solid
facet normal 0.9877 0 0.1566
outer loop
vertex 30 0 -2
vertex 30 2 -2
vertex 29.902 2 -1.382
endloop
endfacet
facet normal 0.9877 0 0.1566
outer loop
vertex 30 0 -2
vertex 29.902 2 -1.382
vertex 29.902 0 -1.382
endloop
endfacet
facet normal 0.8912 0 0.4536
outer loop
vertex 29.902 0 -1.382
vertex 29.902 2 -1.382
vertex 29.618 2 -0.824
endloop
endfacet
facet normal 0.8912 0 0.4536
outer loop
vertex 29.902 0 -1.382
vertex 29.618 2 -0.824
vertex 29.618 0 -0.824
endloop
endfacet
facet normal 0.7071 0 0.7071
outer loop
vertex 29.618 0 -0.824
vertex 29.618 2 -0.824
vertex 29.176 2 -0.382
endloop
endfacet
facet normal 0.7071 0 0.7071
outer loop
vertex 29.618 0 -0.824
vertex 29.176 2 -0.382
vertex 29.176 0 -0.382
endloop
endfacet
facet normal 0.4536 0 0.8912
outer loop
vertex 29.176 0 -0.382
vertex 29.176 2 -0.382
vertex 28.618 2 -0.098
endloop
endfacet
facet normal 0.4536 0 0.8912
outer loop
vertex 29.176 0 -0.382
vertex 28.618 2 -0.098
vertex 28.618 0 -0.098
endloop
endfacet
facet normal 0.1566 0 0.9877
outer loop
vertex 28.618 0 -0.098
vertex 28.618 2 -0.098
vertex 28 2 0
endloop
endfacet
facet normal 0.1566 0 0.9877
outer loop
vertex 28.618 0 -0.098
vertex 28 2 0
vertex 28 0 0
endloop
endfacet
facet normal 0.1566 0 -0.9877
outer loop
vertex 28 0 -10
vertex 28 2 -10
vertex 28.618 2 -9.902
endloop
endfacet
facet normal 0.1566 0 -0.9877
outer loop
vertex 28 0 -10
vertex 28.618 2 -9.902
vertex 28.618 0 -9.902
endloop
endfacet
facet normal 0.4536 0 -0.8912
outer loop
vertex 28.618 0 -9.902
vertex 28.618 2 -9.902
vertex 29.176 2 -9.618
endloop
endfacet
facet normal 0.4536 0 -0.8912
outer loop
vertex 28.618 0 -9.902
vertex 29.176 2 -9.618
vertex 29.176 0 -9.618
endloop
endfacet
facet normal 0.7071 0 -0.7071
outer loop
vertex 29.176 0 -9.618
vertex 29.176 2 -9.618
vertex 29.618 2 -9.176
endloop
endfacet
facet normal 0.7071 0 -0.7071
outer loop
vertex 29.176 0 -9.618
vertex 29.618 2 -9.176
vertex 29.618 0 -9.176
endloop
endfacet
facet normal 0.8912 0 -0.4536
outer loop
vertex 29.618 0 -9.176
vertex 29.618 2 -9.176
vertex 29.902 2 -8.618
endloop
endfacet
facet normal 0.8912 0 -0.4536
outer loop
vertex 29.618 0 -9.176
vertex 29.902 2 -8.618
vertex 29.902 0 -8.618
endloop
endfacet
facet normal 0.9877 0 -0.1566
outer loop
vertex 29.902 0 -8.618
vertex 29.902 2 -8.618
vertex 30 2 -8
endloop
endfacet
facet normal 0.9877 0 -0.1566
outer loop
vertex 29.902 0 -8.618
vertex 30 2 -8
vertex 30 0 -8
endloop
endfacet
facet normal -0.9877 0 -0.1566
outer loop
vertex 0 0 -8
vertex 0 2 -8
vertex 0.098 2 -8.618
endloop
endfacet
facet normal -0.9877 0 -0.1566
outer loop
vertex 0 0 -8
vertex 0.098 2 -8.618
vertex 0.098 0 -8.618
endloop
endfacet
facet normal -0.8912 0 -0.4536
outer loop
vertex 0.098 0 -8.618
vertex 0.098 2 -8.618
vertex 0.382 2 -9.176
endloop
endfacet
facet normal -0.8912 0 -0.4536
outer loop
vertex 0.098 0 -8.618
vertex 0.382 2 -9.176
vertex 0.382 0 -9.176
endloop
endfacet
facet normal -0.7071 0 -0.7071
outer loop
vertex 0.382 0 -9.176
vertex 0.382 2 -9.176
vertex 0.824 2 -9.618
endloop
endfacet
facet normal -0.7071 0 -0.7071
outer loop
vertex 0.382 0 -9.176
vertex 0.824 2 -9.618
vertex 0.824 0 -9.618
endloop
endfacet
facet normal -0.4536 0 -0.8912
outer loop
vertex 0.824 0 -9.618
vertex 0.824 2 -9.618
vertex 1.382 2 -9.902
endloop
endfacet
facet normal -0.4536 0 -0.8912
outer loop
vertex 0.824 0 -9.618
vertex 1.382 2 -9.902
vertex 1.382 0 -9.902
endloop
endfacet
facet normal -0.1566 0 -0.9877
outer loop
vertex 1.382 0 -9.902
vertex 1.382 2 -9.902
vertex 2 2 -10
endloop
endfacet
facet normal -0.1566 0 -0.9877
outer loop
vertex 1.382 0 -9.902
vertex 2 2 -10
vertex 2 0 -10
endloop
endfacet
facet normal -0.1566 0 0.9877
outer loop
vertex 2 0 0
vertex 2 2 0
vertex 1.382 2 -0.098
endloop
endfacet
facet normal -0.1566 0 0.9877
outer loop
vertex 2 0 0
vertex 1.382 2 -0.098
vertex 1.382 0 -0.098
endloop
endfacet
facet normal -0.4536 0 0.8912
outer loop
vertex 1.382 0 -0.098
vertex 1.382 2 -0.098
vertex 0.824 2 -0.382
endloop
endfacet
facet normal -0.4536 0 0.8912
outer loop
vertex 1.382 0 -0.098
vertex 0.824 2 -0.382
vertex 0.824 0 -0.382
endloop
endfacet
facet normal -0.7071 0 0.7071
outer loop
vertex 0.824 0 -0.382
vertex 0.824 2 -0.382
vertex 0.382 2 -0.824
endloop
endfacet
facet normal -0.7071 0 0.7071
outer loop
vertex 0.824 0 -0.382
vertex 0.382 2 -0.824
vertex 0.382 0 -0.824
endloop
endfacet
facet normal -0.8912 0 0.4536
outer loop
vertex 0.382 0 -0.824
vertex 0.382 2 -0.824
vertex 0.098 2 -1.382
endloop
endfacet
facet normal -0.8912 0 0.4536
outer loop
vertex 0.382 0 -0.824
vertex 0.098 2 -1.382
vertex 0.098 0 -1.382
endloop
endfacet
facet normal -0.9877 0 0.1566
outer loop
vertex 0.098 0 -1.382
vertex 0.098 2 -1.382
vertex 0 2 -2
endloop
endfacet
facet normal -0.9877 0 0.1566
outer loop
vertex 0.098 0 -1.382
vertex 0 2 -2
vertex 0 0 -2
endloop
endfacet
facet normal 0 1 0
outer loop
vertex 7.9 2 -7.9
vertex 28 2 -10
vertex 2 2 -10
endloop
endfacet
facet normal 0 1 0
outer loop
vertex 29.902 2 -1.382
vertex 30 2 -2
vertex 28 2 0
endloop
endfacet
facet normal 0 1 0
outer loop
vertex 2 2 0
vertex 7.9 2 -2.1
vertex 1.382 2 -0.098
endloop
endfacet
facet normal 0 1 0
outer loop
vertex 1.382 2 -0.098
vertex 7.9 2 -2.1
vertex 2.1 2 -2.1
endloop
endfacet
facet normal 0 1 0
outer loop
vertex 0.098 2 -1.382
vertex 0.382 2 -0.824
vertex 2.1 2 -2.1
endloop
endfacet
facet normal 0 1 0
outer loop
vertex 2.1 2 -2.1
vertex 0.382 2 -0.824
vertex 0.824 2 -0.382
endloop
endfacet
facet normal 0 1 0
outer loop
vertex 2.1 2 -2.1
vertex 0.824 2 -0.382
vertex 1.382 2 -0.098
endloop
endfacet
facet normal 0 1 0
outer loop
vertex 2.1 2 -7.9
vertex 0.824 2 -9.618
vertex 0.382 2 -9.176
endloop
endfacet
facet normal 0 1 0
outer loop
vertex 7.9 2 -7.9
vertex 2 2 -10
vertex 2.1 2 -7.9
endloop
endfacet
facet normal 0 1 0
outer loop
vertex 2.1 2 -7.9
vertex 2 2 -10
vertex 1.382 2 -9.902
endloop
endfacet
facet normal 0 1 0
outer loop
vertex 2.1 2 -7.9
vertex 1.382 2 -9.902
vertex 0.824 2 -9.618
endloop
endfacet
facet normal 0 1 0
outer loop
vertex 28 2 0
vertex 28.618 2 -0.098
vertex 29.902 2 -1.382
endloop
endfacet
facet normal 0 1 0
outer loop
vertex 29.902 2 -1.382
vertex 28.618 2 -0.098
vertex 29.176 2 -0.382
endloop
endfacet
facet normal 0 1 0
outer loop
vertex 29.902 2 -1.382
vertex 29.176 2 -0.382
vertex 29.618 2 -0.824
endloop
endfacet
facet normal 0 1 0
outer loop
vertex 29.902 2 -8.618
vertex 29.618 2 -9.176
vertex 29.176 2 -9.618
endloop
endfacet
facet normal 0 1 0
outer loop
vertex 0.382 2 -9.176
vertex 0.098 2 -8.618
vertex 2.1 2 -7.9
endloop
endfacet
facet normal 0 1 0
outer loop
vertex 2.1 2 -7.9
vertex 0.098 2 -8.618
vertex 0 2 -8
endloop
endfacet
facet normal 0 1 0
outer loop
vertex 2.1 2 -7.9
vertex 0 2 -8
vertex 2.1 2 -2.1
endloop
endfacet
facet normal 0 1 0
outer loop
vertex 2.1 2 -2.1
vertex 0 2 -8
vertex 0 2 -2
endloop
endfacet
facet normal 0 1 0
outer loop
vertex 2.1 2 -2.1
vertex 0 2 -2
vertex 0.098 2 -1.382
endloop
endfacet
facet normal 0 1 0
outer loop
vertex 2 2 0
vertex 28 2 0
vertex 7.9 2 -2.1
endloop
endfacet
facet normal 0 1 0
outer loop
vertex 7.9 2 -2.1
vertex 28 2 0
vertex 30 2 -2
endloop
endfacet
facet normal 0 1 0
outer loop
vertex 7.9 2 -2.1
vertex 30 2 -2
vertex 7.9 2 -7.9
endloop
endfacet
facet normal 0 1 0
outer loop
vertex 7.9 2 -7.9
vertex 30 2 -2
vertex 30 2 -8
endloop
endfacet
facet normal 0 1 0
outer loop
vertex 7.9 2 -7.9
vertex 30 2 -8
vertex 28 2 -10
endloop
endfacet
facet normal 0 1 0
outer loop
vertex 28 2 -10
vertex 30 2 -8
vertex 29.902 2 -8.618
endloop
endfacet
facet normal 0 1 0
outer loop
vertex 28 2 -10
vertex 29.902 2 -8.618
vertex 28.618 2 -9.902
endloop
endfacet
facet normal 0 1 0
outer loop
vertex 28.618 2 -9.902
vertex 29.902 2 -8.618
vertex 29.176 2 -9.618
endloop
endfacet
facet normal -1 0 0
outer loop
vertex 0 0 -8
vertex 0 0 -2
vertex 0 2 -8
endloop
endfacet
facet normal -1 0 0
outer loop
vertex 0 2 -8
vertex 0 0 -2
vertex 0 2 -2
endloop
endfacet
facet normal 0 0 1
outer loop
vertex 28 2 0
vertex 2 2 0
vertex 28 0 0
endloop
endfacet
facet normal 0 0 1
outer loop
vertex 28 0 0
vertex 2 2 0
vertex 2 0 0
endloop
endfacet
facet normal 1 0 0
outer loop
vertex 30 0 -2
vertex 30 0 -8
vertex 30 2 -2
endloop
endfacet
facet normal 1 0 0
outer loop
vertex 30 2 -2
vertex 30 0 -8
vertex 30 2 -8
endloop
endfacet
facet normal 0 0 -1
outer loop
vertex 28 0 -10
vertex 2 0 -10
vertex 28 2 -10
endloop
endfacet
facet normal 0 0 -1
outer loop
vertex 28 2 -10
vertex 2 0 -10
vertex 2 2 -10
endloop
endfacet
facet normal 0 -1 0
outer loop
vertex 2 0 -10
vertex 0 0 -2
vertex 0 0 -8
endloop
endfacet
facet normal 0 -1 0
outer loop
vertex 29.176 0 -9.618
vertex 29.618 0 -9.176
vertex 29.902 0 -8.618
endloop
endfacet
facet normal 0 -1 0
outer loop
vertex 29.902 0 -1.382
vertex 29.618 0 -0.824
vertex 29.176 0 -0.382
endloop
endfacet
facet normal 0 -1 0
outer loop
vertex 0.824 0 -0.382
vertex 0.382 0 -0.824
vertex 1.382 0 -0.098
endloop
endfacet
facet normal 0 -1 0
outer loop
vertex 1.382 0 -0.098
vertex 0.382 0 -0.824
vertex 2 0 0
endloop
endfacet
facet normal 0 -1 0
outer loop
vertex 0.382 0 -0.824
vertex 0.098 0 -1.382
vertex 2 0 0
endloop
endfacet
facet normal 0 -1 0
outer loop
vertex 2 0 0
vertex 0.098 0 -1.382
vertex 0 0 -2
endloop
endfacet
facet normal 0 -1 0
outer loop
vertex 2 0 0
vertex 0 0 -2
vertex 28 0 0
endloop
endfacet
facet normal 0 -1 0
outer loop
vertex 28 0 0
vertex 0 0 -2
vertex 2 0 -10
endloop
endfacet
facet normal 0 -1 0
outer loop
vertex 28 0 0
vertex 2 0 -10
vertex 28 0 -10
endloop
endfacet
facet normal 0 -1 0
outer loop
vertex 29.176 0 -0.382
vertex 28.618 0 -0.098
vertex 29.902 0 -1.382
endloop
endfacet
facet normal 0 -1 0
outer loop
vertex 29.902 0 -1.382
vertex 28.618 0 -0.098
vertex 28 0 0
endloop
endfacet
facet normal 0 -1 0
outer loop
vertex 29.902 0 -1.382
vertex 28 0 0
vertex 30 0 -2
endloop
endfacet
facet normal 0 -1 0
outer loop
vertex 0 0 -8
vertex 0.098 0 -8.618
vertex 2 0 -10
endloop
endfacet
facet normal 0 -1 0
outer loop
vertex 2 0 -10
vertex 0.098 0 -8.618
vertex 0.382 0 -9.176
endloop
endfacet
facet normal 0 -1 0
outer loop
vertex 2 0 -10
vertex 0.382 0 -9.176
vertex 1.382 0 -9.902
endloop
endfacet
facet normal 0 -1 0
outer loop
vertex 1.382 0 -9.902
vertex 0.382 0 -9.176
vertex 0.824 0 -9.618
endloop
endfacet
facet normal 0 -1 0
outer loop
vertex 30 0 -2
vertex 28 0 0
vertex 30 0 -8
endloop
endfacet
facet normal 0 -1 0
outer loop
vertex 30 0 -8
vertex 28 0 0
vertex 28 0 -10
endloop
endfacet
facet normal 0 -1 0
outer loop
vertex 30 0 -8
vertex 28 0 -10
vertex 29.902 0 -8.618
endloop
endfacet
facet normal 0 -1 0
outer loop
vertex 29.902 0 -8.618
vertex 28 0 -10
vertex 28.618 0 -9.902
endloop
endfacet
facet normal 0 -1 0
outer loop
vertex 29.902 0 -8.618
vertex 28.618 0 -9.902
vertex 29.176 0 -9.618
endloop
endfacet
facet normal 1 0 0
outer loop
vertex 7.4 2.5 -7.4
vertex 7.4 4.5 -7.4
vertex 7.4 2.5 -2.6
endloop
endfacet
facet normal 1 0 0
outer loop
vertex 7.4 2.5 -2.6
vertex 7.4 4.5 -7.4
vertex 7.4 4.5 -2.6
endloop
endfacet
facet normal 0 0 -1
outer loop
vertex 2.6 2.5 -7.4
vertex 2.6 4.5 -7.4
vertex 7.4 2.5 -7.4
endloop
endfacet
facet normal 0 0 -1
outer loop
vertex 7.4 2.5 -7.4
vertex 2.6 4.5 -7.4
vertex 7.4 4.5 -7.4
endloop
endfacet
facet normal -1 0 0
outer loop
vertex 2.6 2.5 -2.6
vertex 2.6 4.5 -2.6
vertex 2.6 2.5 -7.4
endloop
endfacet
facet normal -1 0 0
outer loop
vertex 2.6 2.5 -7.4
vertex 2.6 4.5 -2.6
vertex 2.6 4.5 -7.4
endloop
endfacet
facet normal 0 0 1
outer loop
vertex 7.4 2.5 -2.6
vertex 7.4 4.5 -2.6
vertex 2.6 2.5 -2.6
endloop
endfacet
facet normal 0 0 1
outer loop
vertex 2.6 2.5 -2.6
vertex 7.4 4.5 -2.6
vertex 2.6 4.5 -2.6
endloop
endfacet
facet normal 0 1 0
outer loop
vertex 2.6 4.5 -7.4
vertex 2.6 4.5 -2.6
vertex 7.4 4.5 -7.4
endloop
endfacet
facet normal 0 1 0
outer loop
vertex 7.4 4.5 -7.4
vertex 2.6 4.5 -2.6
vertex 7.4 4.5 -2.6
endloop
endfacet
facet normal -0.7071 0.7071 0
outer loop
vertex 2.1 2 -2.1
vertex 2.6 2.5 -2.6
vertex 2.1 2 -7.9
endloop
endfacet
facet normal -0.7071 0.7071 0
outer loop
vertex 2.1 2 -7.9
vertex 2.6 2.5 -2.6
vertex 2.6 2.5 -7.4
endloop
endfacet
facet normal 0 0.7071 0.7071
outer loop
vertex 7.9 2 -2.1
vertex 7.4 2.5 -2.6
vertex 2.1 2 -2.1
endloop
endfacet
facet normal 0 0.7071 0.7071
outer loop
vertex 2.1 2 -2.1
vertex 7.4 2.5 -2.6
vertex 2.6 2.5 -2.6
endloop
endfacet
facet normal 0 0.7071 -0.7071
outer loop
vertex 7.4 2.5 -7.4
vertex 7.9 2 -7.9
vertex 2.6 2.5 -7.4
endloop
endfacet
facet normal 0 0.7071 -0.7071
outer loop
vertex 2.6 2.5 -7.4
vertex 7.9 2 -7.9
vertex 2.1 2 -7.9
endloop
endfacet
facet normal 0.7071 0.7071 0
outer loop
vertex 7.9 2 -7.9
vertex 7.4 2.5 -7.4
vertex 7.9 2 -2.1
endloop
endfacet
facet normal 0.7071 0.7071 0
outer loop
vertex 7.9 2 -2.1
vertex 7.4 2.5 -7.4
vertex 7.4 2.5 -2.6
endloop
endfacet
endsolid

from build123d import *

# Parameters (mm, degrees)
ESBO_O3_W                = 30
ESBO_O3_H                = 10
RESSALTO_EXTRUS_O3_DEPTH = 2
ESBO_O4_W                = 4.8
ESBO_O4_H                = 4.8
RESSALTO_EXTRUS_O4_DEPTH = 2.5
CHANFRO2_SIZE            = 0.5
FILETE5_R                = 2
FILETE6_R                = 2
FILETE7_R                = 2
FILETE8_R                = 2


with BuildPart() as part:
    # Esboço3 → Ressalto-extrusão3 (new body)
    with BuildSketch(Plane(origin=(0, 0, 0), x_dir=(1, 0, 0), z_dir=(0, 1, 0))):
        with Locations((15, 5)):
            Rectangle(ESBO_O3_W, ESBO_O3_H)
    extrude(amount=RESSALTO_EXTRUS_O3_DEPTH)

    # Esboço4 → Ressalto-extrusão4 (add)
    with BuildSketch(Plane(origin=(0, 2, 0), x_dir=(1, 0, 0), z_dir=(0, 1, 0))):
        with Locations((5, 5)):
            Rectangle(ESBO_O4_W, ESBO_O4_H)
    extrude(amount=RESSALTO_EXTRUS_O4_DEPTH)

    # Chanfro2
    chanfro2_edges = [part.edges().sort_by_distance(p)[0] for p in [
        (7.4, 2, -5),
        (5, 2, -7.4),
        (2.6, 2, -5),
        (5, 2, -2.6),
    ]]
    chamfer(chanfro2_edges, length=CHANFRO2_SIZE)

    # Filete5
    filete5_edges = [part.edges().sort_by_distance(p)[0] for p in [
        (0, 1, 0),
    ]]
    fillet(filete5_edges, radius=FILETE5_R)

    # Filete6
    filete6_edges = [part.edges().sort_by_distance(p)[0] for p in [
        (0, 1, -10),
    ]]
    fillet(filete6_edges, radius=FILETE6_R)

    # Filete7
    filete7_edges = [part.edges().sort_by_distance(p)[0] for p in [
        (30, 1, -10),
    ]]
    fillet(filete7_edges, radius=FILETE7_R)

    # Filete8
    filete8_edges = [part.edges().sort_by_distance(p)[0] for p in [
        (30, 1, 0),
    ]]
    fillet(filete8_edges, radius=FILETE8_R)


solid = part.part
